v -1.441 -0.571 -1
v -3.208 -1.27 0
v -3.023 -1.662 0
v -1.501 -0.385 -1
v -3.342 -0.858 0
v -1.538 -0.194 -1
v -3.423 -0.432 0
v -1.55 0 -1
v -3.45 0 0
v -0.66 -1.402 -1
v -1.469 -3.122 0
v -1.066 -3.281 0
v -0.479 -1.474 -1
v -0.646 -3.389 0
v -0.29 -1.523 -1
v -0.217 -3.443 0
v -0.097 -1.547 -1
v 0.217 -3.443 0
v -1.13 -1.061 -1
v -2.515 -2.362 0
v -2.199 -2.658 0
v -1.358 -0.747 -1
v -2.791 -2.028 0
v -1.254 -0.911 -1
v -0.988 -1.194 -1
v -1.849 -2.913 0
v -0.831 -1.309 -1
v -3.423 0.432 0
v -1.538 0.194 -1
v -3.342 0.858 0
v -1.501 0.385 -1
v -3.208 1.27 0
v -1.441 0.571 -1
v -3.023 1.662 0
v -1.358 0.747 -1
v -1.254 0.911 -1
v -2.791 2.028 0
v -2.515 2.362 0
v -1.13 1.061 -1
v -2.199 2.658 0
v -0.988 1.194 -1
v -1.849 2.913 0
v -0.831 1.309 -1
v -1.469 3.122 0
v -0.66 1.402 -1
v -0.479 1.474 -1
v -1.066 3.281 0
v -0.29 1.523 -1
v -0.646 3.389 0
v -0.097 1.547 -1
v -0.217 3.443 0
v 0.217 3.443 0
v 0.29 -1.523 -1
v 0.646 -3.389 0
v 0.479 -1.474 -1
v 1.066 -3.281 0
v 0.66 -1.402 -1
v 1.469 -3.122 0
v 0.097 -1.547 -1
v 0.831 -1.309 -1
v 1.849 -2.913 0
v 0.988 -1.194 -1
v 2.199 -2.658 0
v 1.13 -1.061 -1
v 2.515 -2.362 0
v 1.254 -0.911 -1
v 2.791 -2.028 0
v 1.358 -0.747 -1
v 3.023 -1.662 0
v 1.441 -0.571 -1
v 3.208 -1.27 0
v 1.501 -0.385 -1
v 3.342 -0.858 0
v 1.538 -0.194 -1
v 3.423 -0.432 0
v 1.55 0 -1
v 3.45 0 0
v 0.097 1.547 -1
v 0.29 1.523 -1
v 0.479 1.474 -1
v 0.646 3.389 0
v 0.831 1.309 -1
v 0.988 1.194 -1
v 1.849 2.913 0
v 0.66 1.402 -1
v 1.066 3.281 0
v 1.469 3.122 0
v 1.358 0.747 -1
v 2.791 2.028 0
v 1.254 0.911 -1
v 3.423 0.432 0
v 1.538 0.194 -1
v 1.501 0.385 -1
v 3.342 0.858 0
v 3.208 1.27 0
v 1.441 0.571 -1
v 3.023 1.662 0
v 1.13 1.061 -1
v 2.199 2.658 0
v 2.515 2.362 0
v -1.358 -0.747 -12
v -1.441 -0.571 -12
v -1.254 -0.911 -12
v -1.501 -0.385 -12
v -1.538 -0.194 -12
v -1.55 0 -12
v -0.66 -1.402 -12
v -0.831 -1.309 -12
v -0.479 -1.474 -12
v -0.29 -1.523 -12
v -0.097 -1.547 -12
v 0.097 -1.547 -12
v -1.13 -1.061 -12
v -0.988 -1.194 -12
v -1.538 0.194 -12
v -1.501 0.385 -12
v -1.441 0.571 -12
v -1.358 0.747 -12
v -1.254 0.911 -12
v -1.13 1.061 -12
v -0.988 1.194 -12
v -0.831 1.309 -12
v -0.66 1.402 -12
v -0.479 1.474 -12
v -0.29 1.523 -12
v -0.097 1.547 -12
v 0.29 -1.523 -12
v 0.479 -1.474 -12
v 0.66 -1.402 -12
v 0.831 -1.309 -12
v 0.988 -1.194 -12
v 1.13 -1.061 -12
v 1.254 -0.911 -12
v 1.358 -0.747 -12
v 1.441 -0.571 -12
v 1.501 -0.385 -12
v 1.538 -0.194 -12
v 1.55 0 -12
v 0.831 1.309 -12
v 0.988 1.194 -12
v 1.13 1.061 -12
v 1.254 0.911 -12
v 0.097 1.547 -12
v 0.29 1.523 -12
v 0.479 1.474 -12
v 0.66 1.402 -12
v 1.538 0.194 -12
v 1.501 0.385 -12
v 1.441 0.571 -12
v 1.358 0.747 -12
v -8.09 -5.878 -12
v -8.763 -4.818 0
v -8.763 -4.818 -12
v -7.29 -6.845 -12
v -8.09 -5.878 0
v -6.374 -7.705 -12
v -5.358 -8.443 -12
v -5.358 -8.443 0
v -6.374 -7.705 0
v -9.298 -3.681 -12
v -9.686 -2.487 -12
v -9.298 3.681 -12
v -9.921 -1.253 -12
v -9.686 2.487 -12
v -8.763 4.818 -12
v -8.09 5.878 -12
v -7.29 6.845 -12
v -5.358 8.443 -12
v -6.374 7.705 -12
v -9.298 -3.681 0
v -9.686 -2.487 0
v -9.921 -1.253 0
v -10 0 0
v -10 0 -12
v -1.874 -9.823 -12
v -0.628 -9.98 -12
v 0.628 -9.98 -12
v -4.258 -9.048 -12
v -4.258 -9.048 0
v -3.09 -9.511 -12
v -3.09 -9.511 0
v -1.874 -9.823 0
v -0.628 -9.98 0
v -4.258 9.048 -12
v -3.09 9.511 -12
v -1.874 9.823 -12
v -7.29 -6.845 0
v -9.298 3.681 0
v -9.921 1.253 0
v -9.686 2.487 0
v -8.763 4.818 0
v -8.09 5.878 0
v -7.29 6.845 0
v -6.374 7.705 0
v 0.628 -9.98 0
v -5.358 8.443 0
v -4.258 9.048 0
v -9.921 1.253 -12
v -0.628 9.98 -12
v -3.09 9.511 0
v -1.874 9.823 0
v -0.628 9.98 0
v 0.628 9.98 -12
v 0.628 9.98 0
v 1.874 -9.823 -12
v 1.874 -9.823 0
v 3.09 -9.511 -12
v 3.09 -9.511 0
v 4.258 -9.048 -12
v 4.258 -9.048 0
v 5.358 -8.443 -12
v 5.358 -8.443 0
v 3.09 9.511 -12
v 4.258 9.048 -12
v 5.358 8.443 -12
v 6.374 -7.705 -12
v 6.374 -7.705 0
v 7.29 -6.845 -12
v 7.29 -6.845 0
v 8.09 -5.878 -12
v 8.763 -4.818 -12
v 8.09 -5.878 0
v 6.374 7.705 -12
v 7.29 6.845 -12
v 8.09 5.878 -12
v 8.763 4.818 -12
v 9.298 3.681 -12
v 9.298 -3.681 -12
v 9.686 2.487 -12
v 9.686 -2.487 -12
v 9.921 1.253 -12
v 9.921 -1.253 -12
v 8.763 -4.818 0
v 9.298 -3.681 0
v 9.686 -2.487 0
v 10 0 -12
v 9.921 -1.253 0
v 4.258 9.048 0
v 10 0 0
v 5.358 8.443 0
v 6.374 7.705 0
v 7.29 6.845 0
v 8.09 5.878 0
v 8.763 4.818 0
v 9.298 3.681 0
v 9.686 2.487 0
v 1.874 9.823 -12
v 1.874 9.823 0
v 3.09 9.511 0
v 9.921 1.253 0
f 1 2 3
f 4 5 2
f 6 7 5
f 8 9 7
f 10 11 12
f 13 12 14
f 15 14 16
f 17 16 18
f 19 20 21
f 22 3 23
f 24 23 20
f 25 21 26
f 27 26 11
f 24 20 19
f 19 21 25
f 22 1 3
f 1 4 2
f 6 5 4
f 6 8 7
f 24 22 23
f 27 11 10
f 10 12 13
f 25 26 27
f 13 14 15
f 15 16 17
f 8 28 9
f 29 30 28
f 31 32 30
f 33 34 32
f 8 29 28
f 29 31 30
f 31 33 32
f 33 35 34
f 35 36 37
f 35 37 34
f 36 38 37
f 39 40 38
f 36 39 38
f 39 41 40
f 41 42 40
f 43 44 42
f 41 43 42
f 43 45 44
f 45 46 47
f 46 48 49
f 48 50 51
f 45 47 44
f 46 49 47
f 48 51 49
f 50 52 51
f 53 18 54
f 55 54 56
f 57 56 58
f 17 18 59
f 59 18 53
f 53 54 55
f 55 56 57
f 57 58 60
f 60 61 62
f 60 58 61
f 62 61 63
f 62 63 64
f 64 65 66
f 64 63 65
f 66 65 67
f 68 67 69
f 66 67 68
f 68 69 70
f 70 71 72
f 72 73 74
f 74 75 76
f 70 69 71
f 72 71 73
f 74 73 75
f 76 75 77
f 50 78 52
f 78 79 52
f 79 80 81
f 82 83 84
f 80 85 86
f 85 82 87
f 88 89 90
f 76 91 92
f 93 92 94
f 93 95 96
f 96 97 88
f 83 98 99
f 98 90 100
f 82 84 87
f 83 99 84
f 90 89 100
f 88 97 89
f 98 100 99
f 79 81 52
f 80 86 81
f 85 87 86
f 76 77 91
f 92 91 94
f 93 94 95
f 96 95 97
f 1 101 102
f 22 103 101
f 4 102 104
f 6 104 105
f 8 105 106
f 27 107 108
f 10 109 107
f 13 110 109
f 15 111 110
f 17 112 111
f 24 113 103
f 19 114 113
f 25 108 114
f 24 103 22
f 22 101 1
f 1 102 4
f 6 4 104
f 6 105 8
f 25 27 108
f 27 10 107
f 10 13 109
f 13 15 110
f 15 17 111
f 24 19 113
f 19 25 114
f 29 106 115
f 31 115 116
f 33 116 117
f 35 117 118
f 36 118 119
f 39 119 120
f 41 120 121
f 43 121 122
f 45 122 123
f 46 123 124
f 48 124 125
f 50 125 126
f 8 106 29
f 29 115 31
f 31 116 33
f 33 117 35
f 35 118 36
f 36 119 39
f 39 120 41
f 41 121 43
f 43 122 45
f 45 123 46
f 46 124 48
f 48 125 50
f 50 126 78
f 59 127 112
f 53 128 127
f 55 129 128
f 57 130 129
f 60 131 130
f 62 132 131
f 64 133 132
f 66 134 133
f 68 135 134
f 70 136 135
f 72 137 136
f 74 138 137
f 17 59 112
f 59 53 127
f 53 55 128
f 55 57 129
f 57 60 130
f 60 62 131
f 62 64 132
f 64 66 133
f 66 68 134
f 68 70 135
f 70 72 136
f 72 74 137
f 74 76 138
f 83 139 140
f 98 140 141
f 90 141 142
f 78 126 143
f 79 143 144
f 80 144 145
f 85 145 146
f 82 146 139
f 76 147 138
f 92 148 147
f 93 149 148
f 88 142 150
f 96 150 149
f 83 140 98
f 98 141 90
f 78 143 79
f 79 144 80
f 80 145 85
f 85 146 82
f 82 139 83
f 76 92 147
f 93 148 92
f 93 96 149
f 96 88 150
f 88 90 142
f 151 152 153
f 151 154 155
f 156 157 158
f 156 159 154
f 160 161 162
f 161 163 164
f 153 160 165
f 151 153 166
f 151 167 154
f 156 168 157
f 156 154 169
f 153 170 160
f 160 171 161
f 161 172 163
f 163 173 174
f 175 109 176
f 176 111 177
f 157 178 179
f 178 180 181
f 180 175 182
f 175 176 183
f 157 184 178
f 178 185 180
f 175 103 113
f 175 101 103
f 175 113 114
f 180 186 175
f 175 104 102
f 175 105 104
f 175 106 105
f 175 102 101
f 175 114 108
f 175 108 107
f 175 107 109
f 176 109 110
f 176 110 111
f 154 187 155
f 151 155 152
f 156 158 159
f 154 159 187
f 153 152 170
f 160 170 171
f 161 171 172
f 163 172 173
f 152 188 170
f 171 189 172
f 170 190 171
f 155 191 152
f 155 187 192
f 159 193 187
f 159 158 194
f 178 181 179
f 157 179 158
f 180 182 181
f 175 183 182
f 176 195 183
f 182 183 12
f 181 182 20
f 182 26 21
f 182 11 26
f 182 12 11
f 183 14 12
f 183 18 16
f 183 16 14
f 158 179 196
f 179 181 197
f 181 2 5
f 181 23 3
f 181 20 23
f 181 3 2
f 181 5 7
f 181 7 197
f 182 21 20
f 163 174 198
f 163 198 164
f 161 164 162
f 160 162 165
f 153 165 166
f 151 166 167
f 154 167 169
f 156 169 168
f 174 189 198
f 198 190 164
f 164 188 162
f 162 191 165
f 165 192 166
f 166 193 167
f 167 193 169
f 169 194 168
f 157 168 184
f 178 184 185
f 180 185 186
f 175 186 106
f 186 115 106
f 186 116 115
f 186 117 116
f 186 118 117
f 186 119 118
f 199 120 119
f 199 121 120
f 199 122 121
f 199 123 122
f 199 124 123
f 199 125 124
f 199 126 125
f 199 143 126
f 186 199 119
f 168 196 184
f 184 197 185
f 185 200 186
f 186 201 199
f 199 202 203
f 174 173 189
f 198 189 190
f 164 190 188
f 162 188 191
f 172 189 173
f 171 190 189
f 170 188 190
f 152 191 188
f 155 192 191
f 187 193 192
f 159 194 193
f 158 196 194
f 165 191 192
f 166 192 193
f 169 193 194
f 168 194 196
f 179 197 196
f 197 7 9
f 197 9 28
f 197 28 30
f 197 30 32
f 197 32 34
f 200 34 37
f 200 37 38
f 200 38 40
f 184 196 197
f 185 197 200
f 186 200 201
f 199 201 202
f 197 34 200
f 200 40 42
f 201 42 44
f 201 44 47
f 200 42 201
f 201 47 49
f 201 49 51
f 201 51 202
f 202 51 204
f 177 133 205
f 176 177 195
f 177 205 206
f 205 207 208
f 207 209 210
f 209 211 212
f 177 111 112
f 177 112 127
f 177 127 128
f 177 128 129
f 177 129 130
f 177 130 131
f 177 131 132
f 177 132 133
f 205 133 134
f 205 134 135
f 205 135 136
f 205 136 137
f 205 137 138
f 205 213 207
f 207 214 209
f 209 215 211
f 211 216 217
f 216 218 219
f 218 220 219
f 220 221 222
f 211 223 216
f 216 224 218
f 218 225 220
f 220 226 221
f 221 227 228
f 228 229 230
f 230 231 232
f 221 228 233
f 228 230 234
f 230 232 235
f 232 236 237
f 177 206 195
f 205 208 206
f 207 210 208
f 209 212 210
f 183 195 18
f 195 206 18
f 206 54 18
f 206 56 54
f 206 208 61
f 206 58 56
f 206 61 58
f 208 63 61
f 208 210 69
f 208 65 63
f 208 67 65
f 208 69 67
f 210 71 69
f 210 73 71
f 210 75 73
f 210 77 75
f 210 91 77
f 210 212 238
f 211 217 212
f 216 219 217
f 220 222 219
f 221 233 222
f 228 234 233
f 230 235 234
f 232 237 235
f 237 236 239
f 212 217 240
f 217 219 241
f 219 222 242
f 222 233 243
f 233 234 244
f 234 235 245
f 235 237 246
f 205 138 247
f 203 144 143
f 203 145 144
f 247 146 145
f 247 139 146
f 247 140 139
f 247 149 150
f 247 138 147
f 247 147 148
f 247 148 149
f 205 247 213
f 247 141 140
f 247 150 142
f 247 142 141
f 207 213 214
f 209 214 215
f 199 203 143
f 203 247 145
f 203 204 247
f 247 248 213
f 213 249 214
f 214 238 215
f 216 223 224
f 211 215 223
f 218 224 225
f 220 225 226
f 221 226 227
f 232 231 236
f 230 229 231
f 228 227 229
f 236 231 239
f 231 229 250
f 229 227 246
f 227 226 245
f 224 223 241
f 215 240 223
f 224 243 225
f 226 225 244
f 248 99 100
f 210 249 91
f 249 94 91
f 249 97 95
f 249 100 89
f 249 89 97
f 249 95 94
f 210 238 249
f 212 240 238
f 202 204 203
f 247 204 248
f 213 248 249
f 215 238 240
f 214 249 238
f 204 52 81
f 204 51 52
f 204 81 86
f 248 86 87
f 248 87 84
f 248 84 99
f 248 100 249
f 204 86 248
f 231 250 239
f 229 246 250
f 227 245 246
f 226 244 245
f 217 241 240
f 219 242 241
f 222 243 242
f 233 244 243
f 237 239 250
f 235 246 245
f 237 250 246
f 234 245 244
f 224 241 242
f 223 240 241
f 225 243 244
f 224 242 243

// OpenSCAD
$fn = 50;


difference() {
	union() {
		translate(v = [0, 0, -12.0000000000]) {
			cylinder(h = 12, r = 10.0000000000);
		}
	}
	union() {
		translate(v = [0, 0, 0]) {
			rotate(a = [0, 0, 0]) {
				difference() {
					union() {
						translate(v = [0, 0, -15.0000000000]) {
							cylinder(h = 15, r = 1.2500000000);
						}
						translate(v = [0, 0, -1.0000000000]) {
							cylinder(h = 1.0000000000, r1 = 1.5500000000, r2 = 3.4500000000);
						}
						translate(v = [0, 0, -15.0000000000]) {
							cylinder(h = 15, r = 1.5500000000);
						}
						translate(v = [0, 0, -15.0000000000]) {
							cylinder(h = 15, r = 1.2500000000);
						}
					}
					union();
				}
			}
		}
	}
}
